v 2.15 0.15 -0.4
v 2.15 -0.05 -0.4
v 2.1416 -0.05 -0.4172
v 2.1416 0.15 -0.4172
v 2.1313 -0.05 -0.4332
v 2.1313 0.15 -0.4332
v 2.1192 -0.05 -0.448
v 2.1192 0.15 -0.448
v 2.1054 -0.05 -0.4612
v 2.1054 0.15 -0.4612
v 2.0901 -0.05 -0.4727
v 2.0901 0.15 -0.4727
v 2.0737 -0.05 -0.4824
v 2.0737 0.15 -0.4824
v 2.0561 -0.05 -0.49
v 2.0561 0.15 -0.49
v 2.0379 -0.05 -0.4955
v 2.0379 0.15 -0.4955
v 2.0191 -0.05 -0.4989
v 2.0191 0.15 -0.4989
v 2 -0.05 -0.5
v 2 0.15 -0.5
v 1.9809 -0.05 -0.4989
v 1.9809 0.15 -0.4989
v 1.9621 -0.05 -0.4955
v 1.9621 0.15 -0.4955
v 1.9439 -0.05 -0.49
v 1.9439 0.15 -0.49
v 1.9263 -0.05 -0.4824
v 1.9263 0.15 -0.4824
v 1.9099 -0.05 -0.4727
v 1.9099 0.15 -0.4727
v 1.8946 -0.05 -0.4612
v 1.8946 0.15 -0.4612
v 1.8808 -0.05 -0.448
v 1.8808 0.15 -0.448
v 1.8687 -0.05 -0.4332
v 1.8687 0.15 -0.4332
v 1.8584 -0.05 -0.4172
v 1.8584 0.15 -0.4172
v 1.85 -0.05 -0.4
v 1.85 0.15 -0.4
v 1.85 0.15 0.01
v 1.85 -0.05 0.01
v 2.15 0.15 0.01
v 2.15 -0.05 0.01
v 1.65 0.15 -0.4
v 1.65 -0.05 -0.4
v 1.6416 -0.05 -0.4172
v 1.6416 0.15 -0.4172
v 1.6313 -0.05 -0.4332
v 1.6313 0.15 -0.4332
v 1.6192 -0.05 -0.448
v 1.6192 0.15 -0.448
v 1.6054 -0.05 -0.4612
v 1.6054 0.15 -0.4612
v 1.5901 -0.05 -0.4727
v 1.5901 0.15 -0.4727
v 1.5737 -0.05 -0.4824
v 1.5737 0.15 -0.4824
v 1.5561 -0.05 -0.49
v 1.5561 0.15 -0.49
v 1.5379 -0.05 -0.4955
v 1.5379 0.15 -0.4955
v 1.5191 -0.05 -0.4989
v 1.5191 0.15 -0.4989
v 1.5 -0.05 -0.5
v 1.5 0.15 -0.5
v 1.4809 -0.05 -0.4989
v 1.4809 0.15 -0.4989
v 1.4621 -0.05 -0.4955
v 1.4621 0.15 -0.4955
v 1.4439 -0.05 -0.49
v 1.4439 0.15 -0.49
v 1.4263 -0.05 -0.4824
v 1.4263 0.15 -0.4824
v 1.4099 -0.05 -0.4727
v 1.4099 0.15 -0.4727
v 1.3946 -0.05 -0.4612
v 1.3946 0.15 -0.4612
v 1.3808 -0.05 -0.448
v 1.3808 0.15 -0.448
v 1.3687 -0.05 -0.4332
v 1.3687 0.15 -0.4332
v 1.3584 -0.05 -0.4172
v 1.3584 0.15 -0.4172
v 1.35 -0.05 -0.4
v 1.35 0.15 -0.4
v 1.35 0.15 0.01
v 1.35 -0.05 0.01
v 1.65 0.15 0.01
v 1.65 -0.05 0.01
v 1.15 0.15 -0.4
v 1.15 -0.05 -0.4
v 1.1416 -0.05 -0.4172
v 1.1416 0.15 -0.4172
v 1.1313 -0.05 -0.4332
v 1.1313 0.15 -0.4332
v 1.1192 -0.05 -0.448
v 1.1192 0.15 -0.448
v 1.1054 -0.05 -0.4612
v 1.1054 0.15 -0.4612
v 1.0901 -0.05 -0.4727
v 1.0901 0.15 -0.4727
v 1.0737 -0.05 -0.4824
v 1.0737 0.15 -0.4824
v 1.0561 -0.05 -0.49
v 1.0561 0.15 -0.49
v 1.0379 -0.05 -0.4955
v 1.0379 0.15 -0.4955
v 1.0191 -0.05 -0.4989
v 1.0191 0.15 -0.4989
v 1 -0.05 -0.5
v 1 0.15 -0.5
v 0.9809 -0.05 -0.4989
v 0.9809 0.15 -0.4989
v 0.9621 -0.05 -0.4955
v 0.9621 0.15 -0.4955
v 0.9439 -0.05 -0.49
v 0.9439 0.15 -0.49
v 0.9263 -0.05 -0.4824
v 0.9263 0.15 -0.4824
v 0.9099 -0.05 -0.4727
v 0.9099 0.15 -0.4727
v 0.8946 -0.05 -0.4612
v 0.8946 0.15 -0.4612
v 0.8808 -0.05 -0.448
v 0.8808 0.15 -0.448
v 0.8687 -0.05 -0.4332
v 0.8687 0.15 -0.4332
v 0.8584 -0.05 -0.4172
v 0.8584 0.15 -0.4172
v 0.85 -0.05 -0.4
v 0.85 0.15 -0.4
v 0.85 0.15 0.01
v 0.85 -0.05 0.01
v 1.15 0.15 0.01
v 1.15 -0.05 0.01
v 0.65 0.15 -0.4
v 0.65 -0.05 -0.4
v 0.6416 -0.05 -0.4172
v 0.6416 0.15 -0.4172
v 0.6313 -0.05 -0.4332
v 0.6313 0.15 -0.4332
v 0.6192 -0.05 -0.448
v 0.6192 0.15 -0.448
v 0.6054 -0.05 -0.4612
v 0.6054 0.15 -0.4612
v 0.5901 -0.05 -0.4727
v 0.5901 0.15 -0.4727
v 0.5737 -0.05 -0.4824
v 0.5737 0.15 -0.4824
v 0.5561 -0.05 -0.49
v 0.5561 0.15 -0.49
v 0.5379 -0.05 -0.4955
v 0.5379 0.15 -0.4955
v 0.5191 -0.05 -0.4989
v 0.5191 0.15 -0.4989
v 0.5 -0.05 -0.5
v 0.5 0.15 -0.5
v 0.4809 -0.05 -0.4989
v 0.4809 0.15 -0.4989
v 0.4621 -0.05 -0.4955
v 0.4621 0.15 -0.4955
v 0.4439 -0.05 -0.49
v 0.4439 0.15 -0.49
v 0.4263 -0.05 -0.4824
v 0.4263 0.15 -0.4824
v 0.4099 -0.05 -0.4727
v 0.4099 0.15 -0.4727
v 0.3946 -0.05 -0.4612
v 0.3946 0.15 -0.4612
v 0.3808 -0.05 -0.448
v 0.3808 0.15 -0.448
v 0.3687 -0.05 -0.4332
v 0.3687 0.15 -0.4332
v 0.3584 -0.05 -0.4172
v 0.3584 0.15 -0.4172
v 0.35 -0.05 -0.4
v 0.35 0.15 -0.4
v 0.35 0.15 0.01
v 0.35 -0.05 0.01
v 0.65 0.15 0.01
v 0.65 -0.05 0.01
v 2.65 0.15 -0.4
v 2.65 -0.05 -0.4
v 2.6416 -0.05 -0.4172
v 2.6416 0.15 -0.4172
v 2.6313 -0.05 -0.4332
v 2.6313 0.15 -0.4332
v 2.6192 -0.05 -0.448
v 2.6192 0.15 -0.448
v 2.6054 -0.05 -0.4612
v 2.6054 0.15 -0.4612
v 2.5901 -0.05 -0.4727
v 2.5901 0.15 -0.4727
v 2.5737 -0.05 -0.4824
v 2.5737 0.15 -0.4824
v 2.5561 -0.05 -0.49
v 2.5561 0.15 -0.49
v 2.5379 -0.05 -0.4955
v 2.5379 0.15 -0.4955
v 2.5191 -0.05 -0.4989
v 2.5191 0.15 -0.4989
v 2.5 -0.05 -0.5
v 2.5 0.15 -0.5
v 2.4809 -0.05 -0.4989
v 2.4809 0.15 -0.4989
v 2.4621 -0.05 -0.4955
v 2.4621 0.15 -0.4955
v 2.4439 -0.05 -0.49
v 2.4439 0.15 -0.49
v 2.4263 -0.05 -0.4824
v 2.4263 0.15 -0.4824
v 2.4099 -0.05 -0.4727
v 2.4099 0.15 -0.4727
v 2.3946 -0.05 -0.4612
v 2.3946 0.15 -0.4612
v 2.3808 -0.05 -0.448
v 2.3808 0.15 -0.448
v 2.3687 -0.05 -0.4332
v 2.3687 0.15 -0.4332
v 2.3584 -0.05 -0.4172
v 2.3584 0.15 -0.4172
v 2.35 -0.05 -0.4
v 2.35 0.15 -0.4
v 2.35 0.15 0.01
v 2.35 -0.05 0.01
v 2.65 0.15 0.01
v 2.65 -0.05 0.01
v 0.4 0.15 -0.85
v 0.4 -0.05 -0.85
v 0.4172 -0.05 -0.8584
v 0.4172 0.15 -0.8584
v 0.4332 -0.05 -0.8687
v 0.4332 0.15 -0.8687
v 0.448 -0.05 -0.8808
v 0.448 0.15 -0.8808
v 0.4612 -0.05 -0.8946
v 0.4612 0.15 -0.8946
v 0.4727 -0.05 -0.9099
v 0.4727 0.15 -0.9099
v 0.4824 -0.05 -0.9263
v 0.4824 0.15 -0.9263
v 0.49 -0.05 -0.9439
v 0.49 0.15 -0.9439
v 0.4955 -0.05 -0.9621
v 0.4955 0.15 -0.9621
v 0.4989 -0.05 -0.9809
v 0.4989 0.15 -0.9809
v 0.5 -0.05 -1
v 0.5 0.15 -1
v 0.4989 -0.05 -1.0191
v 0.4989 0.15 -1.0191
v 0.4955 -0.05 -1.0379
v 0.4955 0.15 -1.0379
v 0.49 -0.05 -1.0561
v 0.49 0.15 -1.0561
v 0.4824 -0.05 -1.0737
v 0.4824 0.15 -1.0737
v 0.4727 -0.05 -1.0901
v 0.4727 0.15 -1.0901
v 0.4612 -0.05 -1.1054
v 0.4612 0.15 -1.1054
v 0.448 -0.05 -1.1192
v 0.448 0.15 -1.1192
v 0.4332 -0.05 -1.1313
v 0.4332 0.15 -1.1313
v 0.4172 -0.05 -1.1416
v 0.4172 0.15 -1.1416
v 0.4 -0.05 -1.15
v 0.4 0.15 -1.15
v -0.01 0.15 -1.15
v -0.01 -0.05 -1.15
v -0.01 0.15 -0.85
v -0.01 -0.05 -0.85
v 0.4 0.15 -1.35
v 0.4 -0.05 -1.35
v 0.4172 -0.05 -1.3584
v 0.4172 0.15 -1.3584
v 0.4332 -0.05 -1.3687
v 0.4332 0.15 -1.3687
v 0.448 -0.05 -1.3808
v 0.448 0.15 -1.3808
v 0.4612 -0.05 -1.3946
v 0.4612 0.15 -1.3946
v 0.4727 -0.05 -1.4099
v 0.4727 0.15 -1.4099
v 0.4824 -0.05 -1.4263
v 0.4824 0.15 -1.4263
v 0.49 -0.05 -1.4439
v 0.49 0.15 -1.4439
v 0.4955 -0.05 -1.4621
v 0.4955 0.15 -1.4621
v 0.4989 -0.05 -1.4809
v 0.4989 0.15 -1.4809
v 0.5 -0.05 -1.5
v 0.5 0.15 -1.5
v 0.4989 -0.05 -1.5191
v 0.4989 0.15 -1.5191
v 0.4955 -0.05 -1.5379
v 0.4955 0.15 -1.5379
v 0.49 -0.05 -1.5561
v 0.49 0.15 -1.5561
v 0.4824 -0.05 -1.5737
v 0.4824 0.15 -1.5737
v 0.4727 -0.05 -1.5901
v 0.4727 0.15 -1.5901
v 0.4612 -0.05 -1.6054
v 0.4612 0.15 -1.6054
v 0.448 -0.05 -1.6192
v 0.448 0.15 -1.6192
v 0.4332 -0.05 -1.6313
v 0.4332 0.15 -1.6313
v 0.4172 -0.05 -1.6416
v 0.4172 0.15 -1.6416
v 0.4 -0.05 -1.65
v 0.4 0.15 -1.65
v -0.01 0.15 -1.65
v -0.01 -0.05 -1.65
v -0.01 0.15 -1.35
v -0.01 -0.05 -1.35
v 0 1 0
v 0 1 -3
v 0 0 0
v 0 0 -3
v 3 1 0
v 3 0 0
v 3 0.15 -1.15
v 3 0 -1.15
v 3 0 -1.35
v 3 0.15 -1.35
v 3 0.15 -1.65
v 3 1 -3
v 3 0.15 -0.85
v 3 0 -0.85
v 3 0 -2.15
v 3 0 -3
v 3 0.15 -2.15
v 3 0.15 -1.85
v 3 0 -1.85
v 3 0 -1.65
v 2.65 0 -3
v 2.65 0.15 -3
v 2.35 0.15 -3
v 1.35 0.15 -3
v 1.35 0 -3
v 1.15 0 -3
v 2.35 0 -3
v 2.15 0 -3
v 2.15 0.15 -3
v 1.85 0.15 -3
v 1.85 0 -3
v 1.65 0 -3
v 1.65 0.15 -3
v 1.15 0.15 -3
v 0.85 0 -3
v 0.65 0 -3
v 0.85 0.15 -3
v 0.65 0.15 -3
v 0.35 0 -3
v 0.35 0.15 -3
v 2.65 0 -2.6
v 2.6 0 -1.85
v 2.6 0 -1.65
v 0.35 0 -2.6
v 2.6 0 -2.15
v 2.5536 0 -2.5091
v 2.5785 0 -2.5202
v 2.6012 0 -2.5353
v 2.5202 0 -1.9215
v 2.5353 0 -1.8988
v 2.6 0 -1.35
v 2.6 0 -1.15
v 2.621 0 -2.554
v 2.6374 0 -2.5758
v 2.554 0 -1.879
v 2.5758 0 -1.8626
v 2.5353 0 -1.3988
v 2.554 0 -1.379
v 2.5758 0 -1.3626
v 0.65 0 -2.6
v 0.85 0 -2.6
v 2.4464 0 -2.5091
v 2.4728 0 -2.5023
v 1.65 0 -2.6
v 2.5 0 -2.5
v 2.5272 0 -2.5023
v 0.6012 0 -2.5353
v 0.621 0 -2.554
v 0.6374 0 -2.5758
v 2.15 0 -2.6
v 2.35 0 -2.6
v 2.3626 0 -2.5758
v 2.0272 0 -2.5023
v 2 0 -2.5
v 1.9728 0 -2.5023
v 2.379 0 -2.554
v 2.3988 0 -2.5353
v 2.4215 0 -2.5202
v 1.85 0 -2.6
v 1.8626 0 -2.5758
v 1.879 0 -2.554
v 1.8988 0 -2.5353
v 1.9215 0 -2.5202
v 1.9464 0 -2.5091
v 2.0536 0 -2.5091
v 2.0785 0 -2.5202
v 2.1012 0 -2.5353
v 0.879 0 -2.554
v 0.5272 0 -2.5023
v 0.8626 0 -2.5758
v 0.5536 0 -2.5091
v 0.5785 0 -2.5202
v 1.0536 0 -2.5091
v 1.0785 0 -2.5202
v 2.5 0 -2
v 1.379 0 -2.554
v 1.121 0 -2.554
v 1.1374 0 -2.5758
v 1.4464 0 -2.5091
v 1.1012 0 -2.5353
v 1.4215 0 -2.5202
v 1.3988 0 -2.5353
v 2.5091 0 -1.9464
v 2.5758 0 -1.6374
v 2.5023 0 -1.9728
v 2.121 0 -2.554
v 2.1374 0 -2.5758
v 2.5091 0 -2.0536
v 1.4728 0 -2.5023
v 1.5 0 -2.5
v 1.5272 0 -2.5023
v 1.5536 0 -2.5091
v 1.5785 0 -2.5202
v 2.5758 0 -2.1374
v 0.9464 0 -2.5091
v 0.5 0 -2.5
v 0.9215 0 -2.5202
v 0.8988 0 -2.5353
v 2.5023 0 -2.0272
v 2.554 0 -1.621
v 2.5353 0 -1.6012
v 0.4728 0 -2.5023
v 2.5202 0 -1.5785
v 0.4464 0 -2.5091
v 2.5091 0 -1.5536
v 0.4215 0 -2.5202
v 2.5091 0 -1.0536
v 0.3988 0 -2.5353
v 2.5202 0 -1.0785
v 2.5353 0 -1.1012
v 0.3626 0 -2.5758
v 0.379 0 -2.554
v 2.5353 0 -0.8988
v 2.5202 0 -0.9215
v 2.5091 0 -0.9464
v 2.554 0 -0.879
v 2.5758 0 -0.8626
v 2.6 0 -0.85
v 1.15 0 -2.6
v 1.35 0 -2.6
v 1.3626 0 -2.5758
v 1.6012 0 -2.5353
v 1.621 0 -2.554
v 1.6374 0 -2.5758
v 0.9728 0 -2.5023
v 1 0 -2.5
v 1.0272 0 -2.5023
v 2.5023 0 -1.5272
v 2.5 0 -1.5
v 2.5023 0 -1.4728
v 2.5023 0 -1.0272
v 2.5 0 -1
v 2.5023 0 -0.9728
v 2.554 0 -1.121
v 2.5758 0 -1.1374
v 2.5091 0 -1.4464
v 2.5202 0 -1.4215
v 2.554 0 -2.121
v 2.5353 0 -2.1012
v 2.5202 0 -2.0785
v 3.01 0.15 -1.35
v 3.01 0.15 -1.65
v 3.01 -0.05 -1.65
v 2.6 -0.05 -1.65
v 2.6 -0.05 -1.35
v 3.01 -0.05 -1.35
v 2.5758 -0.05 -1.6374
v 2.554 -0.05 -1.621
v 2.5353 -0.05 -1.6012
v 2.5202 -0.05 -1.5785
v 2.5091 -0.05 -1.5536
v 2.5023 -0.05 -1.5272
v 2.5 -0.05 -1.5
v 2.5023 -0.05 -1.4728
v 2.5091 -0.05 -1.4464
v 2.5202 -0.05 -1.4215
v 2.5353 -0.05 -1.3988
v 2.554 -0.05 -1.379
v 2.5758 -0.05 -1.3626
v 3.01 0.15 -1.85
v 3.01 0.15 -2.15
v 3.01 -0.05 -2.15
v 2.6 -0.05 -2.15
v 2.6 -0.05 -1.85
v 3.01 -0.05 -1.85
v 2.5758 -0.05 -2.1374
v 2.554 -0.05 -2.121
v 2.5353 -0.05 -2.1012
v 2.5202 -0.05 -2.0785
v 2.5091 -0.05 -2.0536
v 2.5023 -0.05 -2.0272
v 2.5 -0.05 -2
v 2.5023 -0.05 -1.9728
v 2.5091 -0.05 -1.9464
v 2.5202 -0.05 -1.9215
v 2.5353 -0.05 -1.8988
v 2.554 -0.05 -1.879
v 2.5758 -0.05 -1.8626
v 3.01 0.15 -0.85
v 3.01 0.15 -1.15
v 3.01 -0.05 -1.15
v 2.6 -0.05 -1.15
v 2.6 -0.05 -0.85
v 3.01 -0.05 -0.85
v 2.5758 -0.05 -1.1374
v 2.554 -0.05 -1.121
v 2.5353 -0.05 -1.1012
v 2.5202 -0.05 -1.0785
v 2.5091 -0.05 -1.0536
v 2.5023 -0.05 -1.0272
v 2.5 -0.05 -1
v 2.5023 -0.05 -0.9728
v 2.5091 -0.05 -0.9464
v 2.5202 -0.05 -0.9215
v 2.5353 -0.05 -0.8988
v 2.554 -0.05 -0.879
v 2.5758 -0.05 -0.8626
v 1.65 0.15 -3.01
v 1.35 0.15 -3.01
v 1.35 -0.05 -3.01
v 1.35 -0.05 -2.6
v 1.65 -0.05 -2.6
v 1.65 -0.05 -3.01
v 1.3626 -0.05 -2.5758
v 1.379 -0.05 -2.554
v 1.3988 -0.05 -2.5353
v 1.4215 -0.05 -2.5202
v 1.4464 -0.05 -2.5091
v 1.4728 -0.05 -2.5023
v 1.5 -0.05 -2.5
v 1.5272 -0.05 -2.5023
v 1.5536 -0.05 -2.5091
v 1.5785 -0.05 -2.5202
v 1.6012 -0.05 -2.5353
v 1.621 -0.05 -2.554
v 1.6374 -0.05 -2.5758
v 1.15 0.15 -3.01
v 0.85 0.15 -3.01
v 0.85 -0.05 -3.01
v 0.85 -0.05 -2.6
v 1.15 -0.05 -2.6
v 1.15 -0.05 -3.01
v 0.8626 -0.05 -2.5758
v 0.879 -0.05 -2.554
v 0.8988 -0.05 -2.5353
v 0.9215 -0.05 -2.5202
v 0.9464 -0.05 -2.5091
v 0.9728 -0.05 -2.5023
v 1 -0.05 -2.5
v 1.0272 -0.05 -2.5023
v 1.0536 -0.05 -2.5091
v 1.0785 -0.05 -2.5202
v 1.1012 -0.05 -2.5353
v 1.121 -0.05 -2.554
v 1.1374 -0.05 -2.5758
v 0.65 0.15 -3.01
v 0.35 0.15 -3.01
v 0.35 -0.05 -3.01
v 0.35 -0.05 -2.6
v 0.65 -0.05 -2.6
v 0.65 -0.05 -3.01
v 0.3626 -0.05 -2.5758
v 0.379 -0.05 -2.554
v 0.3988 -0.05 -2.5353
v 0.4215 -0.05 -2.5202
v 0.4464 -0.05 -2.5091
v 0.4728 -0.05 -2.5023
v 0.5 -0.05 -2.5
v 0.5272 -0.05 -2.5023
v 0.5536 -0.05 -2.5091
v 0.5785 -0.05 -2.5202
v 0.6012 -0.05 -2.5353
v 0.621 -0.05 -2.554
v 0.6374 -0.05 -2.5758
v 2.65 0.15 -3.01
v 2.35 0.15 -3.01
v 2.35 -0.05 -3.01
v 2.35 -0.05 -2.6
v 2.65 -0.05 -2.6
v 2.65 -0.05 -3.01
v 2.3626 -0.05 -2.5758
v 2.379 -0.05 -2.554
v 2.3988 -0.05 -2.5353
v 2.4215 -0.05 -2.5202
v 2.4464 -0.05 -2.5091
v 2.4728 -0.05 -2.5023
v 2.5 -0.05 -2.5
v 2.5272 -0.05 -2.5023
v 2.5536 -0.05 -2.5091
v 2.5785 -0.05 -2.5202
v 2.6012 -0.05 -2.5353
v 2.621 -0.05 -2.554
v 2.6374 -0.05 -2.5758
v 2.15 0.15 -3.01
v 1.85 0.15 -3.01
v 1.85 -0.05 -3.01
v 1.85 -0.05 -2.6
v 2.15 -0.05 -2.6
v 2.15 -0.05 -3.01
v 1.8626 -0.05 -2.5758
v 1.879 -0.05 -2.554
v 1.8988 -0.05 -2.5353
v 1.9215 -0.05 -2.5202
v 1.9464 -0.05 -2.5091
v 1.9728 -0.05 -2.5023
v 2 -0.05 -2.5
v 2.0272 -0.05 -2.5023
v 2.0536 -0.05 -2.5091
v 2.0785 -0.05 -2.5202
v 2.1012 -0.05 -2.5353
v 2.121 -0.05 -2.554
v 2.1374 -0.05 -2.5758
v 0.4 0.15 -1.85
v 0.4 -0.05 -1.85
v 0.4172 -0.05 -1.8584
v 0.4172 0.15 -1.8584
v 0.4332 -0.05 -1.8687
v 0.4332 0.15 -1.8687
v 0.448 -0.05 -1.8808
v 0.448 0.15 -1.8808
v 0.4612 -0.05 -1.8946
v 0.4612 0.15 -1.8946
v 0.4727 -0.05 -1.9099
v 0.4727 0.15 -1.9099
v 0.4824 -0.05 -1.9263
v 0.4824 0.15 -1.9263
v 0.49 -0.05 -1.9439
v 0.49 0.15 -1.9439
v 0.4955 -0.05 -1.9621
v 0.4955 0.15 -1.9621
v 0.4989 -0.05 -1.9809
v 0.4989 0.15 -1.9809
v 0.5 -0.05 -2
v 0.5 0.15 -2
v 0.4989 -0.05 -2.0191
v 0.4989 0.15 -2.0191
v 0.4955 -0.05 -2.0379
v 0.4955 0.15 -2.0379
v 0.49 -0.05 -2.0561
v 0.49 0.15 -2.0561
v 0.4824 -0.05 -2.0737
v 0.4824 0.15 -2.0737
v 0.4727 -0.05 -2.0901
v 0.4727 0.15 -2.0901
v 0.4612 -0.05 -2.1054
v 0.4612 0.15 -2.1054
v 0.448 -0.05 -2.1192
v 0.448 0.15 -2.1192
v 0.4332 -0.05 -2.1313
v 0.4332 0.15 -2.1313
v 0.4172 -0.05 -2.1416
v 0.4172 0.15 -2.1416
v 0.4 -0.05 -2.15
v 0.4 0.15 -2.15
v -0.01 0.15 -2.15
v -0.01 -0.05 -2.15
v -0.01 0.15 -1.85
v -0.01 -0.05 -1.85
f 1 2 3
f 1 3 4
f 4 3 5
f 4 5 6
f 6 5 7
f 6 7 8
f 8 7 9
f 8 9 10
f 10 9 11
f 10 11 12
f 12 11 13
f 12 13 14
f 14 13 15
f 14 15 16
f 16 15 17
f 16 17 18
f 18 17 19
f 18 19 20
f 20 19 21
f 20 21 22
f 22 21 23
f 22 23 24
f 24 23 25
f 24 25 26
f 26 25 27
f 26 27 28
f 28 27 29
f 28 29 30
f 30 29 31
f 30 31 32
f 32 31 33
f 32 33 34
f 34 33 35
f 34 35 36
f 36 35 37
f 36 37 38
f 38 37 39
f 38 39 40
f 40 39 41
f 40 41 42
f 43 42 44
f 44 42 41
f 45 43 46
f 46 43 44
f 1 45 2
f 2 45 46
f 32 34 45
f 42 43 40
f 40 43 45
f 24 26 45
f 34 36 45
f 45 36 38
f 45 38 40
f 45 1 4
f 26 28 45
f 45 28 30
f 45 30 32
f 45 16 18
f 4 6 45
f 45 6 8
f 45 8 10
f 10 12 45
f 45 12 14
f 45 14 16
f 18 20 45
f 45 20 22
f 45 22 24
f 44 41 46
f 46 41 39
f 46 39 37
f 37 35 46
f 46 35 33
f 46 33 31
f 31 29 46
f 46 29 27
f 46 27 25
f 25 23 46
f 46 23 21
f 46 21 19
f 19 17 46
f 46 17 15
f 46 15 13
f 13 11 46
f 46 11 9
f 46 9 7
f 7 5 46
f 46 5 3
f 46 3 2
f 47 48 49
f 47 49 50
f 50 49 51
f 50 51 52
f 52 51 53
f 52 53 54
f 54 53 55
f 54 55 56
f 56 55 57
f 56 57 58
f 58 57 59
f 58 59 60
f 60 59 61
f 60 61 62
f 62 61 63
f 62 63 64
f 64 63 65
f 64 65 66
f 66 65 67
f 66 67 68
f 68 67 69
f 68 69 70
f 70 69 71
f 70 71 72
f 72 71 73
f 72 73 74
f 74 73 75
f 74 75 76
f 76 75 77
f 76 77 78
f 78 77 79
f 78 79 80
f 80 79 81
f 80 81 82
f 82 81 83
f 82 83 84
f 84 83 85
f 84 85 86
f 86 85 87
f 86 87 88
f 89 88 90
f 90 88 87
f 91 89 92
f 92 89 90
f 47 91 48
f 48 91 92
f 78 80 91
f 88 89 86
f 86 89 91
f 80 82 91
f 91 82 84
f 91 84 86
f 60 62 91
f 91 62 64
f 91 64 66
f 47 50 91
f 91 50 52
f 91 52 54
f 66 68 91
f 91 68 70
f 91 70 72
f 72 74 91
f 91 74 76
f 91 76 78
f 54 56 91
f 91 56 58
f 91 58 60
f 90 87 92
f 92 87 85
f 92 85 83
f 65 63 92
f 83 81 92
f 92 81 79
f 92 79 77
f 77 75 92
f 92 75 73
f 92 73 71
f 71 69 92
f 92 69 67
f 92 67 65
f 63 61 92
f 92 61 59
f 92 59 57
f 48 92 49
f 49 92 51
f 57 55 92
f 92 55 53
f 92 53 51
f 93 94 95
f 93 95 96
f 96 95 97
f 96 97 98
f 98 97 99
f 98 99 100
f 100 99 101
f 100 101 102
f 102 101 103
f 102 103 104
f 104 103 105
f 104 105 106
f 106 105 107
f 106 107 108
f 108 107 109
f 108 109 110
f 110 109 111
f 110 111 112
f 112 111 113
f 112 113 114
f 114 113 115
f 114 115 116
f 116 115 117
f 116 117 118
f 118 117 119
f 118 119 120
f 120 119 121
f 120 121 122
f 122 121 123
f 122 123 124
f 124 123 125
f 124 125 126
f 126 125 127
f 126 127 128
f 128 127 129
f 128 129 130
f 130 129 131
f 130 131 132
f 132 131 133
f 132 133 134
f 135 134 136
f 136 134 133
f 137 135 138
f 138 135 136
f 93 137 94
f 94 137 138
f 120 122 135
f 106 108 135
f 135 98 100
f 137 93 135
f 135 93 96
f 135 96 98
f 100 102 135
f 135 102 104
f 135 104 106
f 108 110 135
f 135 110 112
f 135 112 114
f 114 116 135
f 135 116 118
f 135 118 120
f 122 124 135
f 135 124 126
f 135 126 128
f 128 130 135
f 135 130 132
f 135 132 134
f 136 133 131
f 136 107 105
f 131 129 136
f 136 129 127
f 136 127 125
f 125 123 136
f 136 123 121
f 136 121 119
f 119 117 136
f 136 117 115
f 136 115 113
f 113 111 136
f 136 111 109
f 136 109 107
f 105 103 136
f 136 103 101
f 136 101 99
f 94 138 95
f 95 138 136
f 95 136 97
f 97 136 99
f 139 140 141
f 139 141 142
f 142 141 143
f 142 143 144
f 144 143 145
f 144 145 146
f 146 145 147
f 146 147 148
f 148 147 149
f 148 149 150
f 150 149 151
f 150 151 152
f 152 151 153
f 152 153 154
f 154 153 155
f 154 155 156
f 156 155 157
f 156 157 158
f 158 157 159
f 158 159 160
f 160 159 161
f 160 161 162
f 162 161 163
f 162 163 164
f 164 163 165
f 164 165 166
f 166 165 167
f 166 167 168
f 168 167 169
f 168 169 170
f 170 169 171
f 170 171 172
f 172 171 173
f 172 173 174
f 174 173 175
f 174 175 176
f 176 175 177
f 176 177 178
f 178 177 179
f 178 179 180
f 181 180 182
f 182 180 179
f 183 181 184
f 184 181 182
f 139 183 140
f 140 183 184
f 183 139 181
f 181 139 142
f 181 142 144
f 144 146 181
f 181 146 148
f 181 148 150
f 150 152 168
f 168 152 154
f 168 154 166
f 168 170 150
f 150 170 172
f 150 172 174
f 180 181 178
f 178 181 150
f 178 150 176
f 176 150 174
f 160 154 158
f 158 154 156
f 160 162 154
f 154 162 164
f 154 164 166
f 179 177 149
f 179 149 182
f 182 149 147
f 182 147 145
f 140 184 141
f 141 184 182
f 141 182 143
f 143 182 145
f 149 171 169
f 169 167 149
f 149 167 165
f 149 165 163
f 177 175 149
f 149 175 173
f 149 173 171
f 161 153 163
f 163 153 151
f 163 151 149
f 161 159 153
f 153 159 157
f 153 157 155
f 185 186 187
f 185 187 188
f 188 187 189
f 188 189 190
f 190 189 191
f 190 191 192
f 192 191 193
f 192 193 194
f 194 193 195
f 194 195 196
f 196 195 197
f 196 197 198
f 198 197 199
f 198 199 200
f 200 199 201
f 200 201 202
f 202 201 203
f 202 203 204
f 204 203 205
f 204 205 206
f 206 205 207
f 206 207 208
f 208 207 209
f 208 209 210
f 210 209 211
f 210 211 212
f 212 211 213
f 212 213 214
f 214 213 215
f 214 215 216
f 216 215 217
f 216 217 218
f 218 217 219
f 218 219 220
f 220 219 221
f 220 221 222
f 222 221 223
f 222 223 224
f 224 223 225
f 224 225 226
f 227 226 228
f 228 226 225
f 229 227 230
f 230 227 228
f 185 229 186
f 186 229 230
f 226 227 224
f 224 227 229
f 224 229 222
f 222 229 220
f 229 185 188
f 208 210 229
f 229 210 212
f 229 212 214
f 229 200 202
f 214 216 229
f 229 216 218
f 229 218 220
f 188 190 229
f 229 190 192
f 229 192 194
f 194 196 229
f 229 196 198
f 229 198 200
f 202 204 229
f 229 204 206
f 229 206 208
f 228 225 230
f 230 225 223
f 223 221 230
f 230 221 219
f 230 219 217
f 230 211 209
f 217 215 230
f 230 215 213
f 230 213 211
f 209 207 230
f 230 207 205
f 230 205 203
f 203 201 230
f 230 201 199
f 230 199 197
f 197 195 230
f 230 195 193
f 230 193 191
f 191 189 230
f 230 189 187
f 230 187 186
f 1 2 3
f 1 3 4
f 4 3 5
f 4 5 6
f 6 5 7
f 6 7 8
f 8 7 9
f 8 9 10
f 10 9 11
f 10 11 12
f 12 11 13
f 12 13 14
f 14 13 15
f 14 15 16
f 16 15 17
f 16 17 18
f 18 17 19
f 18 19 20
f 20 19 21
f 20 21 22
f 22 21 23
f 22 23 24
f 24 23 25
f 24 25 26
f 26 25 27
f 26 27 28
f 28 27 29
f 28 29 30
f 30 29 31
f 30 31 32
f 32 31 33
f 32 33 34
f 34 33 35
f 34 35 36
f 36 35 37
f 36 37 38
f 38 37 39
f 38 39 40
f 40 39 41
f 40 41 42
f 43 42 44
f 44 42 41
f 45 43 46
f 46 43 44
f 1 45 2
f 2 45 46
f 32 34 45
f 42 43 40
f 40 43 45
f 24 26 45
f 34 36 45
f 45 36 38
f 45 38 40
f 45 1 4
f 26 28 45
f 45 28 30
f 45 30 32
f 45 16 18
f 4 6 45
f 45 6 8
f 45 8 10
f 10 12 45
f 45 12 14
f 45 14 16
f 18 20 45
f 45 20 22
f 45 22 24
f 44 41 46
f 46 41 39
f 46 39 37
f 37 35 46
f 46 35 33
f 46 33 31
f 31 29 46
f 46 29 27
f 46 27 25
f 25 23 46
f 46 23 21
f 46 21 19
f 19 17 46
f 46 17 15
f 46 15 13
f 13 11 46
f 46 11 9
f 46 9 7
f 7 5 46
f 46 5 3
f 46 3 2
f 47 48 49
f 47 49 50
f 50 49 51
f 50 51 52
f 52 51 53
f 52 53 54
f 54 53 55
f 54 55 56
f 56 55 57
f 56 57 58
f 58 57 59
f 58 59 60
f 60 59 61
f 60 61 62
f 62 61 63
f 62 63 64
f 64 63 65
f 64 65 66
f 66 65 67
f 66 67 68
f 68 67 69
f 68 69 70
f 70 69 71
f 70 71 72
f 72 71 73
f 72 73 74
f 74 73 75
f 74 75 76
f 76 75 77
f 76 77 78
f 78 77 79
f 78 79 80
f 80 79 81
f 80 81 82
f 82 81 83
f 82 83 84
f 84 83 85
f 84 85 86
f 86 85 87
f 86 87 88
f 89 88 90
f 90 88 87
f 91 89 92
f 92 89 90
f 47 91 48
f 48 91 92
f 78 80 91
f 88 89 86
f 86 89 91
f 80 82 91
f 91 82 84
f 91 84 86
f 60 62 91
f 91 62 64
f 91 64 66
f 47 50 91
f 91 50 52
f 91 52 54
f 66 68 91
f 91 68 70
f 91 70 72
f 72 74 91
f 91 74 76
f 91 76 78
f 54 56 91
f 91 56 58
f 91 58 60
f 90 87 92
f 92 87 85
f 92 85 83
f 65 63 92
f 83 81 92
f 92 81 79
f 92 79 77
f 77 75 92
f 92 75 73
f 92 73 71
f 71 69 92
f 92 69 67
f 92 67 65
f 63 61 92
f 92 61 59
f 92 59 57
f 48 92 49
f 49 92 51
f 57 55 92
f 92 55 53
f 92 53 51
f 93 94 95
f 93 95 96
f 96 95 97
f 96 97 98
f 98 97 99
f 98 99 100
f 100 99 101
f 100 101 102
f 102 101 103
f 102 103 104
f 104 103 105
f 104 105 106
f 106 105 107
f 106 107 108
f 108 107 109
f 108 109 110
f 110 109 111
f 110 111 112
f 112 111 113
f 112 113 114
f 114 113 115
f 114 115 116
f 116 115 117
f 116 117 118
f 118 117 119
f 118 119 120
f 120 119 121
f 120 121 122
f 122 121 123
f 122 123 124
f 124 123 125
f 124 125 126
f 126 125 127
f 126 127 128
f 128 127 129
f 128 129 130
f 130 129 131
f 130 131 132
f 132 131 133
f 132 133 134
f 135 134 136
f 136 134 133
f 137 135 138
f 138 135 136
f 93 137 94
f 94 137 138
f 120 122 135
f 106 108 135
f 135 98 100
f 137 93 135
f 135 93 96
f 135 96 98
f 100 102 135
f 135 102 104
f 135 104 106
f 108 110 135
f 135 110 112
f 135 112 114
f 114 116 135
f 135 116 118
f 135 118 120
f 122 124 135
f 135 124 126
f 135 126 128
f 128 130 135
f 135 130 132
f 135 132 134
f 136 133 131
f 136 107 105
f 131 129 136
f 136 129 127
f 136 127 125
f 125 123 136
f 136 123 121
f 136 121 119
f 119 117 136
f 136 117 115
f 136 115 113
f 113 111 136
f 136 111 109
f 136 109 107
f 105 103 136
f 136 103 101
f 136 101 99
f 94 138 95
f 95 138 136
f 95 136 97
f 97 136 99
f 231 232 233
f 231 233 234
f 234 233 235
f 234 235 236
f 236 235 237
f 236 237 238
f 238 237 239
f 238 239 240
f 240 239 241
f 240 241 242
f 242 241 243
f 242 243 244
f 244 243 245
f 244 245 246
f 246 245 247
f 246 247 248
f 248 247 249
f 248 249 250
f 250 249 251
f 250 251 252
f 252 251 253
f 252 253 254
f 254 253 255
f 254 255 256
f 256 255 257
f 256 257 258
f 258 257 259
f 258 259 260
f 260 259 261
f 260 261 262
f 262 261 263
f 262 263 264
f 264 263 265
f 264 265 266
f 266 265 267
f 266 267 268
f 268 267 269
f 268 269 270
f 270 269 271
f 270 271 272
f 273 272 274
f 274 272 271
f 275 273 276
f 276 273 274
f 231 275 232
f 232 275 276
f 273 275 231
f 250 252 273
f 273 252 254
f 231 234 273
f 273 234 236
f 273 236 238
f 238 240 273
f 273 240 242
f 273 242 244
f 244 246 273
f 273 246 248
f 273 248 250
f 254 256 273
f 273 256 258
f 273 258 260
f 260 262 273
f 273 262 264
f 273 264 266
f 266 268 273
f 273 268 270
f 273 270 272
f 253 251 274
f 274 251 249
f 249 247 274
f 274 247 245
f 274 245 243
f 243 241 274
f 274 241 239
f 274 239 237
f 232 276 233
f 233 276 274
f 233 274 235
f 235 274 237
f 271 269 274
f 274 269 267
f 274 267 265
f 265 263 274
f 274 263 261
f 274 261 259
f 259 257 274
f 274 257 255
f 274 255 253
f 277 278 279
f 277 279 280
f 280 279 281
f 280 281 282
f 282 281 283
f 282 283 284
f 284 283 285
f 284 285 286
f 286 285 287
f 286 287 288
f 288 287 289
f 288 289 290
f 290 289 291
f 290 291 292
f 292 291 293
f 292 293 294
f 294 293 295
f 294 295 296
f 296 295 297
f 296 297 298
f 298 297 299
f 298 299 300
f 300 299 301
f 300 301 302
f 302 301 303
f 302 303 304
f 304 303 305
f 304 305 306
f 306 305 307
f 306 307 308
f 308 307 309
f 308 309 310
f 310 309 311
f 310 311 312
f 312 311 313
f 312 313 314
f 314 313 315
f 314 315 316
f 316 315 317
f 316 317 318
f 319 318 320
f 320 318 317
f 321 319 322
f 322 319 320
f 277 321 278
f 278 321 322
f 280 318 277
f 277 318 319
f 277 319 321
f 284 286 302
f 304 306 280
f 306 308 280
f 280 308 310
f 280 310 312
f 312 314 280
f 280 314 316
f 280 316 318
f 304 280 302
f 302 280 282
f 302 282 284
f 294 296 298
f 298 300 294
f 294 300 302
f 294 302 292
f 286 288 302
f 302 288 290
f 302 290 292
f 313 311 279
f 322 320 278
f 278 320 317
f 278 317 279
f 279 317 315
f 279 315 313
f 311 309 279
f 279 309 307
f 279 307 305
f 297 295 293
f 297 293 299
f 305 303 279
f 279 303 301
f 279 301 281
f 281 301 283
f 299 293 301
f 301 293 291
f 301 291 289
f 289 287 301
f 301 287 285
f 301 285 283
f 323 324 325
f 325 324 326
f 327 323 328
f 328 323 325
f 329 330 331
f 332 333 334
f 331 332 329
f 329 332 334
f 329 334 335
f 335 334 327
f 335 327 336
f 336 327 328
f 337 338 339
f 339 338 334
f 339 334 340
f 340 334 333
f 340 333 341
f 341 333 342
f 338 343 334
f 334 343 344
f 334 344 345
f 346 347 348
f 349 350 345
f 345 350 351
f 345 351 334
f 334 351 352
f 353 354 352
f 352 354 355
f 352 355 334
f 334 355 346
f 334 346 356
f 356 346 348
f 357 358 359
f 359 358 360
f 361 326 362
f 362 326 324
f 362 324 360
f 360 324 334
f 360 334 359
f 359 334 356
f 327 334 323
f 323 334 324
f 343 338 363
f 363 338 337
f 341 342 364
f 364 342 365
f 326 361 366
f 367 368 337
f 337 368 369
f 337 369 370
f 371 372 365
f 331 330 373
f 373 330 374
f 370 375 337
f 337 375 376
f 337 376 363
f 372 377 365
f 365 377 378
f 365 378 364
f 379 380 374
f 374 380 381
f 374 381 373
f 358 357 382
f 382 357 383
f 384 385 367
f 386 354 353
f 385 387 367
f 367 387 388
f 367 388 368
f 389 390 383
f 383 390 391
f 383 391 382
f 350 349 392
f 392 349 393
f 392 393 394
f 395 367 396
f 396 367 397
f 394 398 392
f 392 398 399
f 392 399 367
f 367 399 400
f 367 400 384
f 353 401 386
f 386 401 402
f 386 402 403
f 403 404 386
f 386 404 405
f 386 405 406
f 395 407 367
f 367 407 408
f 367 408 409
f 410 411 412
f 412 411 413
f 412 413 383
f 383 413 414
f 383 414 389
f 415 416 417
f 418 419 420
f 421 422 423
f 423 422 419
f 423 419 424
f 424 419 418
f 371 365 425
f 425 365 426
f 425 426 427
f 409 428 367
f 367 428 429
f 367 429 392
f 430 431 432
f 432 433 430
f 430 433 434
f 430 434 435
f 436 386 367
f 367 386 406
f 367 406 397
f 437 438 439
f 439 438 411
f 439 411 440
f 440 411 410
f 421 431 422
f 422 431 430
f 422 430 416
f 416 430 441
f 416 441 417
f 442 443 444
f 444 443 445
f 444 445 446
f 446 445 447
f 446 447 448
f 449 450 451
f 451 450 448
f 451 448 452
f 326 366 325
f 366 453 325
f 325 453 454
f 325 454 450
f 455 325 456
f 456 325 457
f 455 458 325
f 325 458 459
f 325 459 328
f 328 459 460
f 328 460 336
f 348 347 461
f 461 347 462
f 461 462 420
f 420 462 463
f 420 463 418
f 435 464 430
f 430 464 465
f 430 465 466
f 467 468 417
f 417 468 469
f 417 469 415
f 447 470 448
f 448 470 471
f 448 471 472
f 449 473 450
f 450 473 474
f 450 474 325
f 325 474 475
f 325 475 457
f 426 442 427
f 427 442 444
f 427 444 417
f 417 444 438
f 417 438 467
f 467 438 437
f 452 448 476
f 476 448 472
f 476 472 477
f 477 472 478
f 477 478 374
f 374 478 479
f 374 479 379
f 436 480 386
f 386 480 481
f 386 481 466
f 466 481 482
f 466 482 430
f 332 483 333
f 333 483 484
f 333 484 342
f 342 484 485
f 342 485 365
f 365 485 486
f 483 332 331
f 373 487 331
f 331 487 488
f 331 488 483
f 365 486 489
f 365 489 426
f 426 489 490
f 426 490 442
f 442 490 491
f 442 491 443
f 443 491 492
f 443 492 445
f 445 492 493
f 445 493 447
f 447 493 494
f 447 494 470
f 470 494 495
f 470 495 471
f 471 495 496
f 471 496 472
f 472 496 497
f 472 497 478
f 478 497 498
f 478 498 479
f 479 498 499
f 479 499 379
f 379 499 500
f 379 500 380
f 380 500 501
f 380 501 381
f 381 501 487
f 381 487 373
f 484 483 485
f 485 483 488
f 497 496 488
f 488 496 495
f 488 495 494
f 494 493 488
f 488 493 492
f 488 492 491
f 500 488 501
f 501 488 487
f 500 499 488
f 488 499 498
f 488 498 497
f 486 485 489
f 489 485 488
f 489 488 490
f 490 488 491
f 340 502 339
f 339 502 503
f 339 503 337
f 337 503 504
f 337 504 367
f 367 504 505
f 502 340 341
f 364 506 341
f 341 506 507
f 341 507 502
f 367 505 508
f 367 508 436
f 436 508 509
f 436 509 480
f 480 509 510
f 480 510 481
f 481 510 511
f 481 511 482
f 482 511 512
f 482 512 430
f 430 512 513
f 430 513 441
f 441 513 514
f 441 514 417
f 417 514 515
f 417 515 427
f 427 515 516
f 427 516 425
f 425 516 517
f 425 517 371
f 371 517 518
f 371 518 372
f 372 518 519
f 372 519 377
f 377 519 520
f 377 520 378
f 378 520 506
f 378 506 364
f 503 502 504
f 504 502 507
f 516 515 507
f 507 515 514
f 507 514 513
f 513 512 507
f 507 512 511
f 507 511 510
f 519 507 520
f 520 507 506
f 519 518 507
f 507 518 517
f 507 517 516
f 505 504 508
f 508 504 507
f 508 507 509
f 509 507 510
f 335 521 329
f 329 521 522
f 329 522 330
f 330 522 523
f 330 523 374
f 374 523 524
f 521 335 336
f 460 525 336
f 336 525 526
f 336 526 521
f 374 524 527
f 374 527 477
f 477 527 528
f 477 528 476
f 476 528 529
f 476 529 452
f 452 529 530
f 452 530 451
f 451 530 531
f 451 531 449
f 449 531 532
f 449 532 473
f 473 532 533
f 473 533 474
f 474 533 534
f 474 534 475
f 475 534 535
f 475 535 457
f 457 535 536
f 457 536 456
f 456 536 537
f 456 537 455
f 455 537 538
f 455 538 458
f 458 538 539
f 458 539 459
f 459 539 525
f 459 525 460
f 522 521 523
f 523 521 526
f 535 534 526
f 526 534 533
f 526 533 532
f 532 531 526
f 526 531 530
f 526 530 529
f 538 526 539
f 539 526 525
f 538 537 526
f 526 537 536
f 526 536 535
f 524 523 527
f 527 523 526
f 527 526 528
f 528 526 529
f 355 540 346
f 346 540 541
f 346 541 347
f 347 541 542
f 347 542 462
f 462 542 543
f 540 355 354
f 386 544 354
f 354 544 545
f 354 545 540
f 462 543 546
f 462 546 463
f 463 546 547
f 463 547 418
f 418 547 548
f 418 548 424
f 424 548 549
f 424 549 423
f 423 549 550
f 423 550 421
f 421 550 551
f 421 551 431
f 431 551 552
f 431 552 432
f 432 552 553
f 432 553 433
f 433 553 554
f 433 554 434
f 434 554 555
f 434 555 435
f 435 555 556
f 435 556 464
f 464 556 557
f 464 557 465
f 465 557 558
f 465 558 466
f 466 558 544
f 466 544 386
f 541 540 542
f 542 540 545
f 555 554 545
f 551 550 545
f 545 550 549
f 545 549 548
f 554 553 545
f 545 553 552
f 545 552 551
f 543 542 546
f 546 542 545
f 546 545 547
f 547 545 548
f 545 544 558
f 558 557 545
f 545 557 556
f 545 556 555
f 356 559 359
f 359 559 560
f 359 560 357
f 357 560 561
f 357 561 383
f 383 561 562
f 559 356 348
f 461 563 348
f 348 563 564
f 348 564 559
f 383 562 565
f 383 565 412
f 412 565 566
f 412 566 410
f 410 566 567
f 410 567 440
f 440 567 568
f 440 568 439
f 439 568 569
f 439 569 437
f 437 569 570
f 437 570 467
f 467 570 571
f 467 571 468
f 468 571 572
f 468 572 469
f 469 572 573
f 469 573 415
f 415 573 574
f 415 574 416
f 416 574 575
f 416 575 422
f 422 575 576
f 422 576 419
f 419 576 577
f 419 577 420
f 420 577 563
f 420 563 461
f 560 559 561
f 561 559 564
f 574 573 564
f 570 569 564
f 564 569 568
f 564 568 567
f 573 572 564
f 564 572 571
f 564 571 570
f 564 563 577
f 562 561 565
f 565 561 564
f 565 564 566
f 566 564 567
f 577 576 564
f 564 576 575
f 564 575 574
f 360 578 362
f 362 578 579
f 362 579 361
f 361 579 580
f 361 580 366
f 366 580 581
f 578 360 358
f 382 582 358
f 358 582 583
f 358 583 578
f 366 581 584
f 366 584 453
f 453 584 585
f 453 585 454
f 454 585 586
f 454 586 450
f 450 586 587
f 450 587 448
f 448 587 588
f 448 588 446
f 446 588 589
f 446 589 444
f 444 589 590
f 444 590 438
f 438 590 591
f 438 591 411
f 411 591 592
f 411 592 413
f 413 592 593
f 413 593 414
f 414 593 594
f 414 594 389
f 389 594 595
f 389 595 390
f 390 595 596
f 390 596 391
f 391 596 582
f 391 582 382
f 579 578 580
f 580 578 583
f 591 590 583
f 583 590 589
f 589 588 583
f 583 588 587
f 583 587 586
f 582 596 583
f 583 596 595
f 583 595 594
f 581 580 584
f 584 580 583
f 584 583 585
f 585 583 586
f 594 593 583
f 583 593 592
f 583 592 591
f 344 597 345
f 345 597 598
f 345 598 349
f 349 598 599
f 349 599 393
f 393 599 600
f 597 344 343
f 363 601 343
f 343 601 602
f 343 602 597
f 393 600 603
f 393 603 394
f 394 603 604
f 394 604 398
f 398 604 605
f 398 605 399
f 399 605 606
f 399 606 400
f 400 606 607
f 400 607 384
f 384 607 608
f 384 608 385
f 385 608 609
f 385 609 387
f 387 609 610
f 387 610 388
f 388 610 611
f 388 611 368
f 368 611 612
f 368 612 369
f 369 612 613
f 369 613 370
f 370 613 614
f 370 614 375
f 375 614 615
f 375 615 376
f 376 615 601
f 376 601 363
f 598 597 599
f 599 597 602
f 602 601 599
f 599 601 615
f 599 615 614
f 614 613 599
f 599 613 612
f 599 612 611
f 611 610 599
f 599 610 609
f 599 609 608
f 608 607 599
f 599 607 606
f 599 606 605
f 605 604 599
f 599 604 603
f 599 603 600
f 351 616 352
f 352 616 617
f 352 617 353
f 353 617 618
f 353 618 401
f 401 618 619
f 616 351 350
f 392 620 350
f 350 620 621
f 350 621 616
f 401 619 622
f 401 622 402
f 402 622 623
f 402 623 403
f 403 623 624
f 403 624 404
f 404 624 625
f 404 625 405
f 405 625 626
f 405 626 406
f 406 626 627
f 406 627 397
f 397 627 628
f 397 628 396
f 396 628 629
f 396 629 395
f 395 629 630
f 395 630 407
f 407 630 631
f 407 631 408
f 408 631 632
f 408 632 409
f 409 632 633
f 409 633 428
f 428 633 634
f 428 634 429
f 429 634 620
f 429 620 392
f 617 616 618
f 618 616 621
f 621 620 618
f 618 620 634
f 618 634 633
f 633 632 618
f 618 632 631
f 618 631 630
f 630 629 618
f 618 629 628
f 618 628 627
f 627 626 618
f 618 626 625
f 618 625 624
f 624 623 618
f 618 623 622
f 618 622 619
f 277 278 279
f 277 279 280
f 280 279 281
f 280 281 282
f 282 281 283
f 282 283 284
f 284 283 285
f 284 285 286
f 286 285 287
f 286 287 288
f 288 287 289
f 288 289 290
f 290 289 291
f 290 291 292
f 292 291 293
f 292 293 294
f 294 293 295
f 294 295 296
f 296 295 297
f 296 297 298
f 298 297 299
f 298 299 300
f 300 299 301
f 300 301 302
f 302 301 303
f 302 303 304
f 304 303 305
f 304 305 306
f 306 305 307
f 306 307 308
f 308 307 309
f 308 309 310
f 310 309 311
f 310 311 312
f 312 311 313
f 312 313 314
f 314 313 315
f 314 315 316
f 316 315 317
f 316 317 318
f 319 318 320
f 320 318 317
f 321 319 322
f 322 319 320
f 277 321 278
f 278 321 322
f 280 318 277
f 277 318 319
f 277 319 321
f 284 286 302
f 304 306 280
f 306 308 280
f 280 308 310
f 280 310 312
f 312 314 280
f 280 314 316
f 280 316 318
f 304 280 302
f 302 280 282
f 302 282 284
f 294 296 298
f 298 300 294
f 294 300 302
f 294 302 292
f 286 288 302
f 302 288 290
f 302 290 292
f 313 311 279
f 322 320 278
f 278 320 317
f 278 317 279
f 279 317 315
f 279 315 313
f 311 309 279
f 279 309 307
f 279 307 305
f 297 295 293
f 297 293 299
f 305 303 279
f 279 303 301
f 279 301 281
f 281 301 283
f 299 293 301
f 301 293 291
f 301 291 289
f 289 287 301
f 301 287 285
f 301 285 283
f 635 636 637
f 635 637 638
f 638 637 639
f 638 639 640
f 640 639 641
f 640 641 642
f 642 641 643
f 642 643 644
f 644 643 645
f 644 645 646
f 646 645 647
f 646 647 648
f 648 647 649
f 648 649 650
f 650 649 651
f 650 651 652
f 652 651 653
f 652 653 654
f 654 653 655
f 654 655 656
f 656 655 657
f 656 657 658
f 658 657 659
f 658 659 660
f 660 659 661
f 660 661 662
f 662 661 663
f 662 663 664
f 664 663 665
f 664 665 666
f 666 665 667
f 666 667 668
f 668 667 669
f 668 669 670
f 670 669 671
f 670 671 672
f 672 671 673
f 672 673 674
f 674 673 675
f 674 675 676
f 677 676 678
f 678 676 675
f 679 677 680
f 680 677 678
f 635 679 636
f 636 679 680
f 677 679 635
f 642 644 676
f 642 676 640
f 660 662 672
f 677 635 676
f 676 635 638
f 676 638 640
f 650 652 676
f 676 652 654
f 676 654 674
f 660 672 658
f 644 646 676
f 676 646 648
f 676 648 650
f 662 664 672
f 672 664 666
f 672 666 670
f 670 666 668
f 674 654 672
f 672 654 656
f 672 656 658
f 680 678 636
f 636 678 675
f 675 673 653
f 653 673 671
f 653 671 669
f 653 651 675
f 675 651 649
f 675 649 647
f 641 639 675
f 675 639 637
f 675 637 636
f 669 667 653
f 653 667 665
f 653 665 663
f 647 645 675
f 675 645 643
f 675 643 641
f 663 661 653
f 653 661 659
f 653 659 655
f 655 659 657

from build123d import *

# Parameters (mm, degrees)
SKETCH1_W           = 3
SKETCH1_H           = 3
BOSS_EXTRUDE1_DEPTH = 1
BOSS_EXTRUDE2_START = 0.05
BOSS_EXTRUDE2_DEPTH = 0.2
LPATTERN1_START     = -0.05
LPATTERN1_DEPTH     = 0.2
LPATTERN1_2_DEPTH   = 0.2
LPATTERN1_3_DEPTH   = 0.2
LPATTERN1_4_DEPTH   = 0.2
LPATTERN1_5_DEPTH   = 0.2
LPATTERN1_6_DEPTH   = 0.2
LPATTERN1_7_DEPTH   = 0.2
BOSS_EXTRUDE4_START = 0.05
BOSS_EXTRUDE4_DEPTH = 0.2
LPATTERN3_START     = -0.05
LPATTERN3_DEPTH     = 0.2
LPATTERN3_2_DEPTH   = 0.2
LPATTERN3_3_DEPTH   = 0.2


# Read off the part's stored shape, not the designer's step: LPattern1, LPattern3
with BuildPart() as part:
    # Sketch1 → Boss-Extrude1 (new body)
    with BuildSketch(Plane(origin=(0, 0, 0), x_dir=(1, 0, 0), z_dir=(0, 1, 0))):
        with Locations((1.5, 1.5)):
            Rectangle(SKETCH1_W, SKETCH1_H)
    extrude(amount=BOSS_EXTRUDE1_DEPTH)


with BuildPart() as body_2:
    # Sketch2 → Boss-Extrude2 (new body)
    with BuildSketch(Plane.XZ.offset(BOSS_EXTRUDE2_START)):
        with BuildLine():
            Line((2.15, 0.01), (2.15, -0.4))
            ThreePointArc((2.15, -0.4), (2, -0.5), (1.85, -0.4))
            Line((1.85, -0.4), (1.85, 0.01))
            Line((1.85, 0.01), (2.15, 0.01))
        make_face()
    boss_extrude2 = extrude(amount=-BOSS_EXTRUDE2_DEPTH)


with BuildPart() as body_3:
    # LPattern1 outline → LPattern1 (new body)
    with BuildSketch(Plane(origin=(0, 0, 0), x_dir=(1, 0, 0), z_dir=(0, 1, 0)).offset(LPATTERN1_START)):
        with BuildLine():
            ThreePointArc((1.15, 0.4), (1, 0.5), (0.85, 0.4))
            Line((0.85, 0.4), (0.85, -0.01))
            Line((0.85, -0.01), (1.15, -0.01))
            Line((1.15, -0.01), (1.15, 0.4))
        make_face()
    lpattern1 = extrude(amount=LPATTERN1_DEPTH)


with BuildPart() as body_4:
    # LPattern1 2 outline → LPattern1 2 (new body)
    with BuildSketch(Plane(origin=(0, 0, 0), x_dir=(1, 0, 0), z_dir=(0, 1, 0)).offset(LPATTERN1_START)):
        with BuildLine():
            ThreePointArc((1.65, 0.4), (1.5, 0.5), (1.35, 0.4))
            Line((1.35, 0.4), (1.35, -0.01))
            Line((1.35, -0.01), (1.65, -0.01))
            Line((1.65, -0.01), (1.65, 0.4))
        make_face()
    lpattern1_2 = extrude(amount=LPATTERN1_2_DEPTH)


with BuildPart() as body_5:
    # LPattern1 3 outline → LPattern1 3 (new body)
    with BuildSketch(Plane(origin=(0, 0, 0), x_dir=(1, 0, 0), z_dir=(0, 1, 0)).offset(LPATTERN1_START)):
        with BuildLine():
            ThreePointArc((2.65, 0.4), (2.5, 0.5), (2.35, 0.4))
            Line((2.35, 0.4), (2.35, -0.01))
            Line((2.35, -0.01), (2.65, -0.01))
            Line((2.65, -0.01), (2.65, 0.4))
        make_face()
    lpattern1_3 = extrude(amount=LPATTERN1_3_DEPTH)


with BuildPart() as body_6:
    # LPattern1 4 outline → LPattern1 4 (new body)
    with BuildSketch(Plane(origin=(0, 0, 0), x_dir=(1, 0, 0), z_dir=(0, 1, 0)).offset(LPATTERN1_START)):
        with BuildLine():
            ThreePointArc((0.65, 0.4), (0.5, 0.5), (0.35, 0.4))
            Line((0.35, 0.4), (0.35, -0.01))
            Line((0.35, -0.01), (0.65, -0.01))
            Line((0.65, -0.01), (0.65, 0.4))
        make_face()
    lpattern1_4 = extrude(amount=LPATTERN1_4_DEPTH)


with BuildPart() as body_7:
    # LPattern1 5 outline → LPattern1 5 (new body)
    with BuildSketch(Plane(origin=(0, 0, 0), x_dir=(1, 0, 0), z_dir=(0, 1, 0)).offset(LPATTERN1_START)):
        with BuildLine():
            ThreePointArc((1.15, 0.4), (1, 0.5), (0.85, 0.4))
            Line((0.85, 0.4), (0.85, -0.01))
            Line((0.85, -0.01), (1.15, -0.01))
            Line((1.15, -0.01), (1.15, 0.4))
        make_face()
    lpattern1_5 = extrude(amount=LPATTERN1_5_DEPTH)


with BuildPart() as body_8:
    # LPattern1 6 outline → LPattern1 6 (new body)
    with BuildSketch(Plane(origin=(0, 0, 0), x_dir=(1, 0, 0), z_dir=(0, 1, 0)).offset(LPATTERN1_START)):
        with BuildLine():
            ThreePointArc((1.65, 0.4), (1.5, 0.5), (1.35, 0.4))
            Line((1.35, 0.4), (1.35, -0.01))
            Line((1.35, -0.01), (1.65, -0.01))
            Line((1.65, -0.01), (1.65, 0.4))
        make_face()
    lpattern1_6 = extrude(amount=LPATTERN1_6_DEPTH)


with BuildPart() as body_9:
    # LPattern1 7 outline → LPattern1 7 (new body)
    with BuildSketch(Plane(origin=(0, 0, 0), x_dir=(1, 0, 0), z_dir=(0, 1, 0)).offset(LPATTERN1_START)):
        with BuildLine():
            ThreePointArc((2.15, 0.4), (2, 0.5), (1.85, 0.4))
            Line((1.85, 0.4), (1.85, -0.01))
            Line((1.85, -0.01), (2.15, -0.01))
            Line((2.15, -0.01), (2.15, 0.4))
        make_face()
    lpattern1_7 = extrude(amount=LPATTERN1_7_DEPTH)


with BuildPart() as body_10:
    # Sketch5 → Boss-Extrude4 (new body)
    with BuildSketch(Plane.XZ.offset(BOSS_EXTRUDE4_START)):
        with BuildLine():
            Line((-0.01, -0.85), (0.4, -0.85))
            ThreePointArc((0.4, -0.85), (0.5, -1), (0.4, -1.15))
            Line((0.4, -1.15), (-0.01, -1.15))
            Line((-0.01, -1.15), (-0.01, -0.85))
        make_face()
    boss_extrude4 = extrude(amount=-BOSS_EXTRUDE4_DEPTH)


with BuildPart() as body_11:
    # LPattern3 outline → LPattern3 (new body)
    with BuildSketch(Plane(origin=(0, 0, 0), x_dir=(1, 0, 0), z_dir=(0, 1, 0)).offset(LPATTERN3_START)):
        with BuildLine():
            ThreePointArc((0.4, 1.85), (0.5, 2), (0.4, 2.15))
            Line((0.4, 2.15), (-0.01, 2.15))
            Line((-0.01, 2.15), (-0.01, 1.85))
            Line((-0.01, 1.85), (0.4, 1.85))
        make_face()
    lpattern3 = extrude(amount=LPATTERN3_DEPTH)


with BuildPart() as body_12:
    # LPattern3 2 outline → LPattern3 2 (new body)
    with BuildSketch(Plane(origin=(0, 0, 0), x_dir=(1, 0, 0), z_dir=(0, 1, 0)).offset(LPATTERN3_START)):
        with BuildLine():
            ThreePointArc((0.4, 1.35), (0.5, 1.5), (0.4, 1.65))
            Line((0.4, 1.65), (-0.01, 1.65))
            Line((-0.01, 1.65), (-0.01, 1.35))
            Line((-0.01, 1.35), (0.4, 1.35))
        make_face()
    lpattern3_2 = extrude(amount=LPATTERN3_2_DEPTH)


with BuildPart() as body_13:
    # LPattern3 3 outline → LPattern3 3 (new body)
    with BuildSketch(Plane(origin=(0, 0, 0), x_dir=(1, 0, 0), z_dir=(0, 1, 0)).offset(LPATTERN3_START)):
        with BuildLine():
            ThreePointArc((0.4, 1.35), (0.5, 1.5), (0.4, 1.65))
            Line((0.4, 1.65), (-0.01, 1.65))
            Line((-0.01, 1.65), (-0.01, 1.35))
            Line((-0.01, 1.35), (0.4, 1.35))
        make_face()
    lpattern3_3 = extrude(amount=LPATTERN3_3_DEPTH)


with BuildPart() as part_1:
    add(part.part)

    # Mirror7: Boss-Extrude4, LPattern3, LPattern3 2, LPattern3 3 across plane
    add(boss_extrude4.mirror(Plane(origin=(1.5, 0, 0), x_dir=(0, 0, 1), z_dir=(1, 0, 0))))
    add(lpattern3.mirror(Plane(origin=(1.5, 0, 0), x_dir=(0, 0, 1), z_dir=(1, 0, 0))))
    add(lpattern3_2.mirror(Plane(origin=(1.5, 0, 0), x_dir=(0, 0, 1), z_dir=(1, 0, 0))))
    add(lpattern3_3.mirror(Plane(origin=(1.5, 0, 0), x_dir=(0, 0, 1), z_dir=(1, 0, 0))))

    # Mirror8: Boss-Extrude2, LPattern1, LPattern1 2, LPattern1 3, LPattern1 4, LPattern1 5, LPattern1 6, LPattern1 7 across plane
    add(boss_extrude2.mirror(Plane.XY.offset(-1.5)))
    add(lpattern1.mirror(Plane.XY.offset(-1.5)))
    add(lpattern1_2.mirror(Plane.XY.offset(-1.5)))
    add(lpattern1_3.mirror(Plane.XY.offset(-1.5)))
    add(lpattern1_4.mirror(Plane.XY.offset(-1.5)))
    add(lpattern1_5.mirror(Plane.XY.offset(-1.5)))
    add(lpattern1_6.mirror(Plane.XY.offset(-1.5)))
    add(lpattern1_7.mirror(Plane.XY.offset(-1.5)))


solid = Compound([body_2.part, body_3.part, body_4.part, body_5.part, body_6.part, body_7.part, body_8.part, body_9.part, body_10.part, body_11.part, body_12.part, body_13.part, part_1.part])
